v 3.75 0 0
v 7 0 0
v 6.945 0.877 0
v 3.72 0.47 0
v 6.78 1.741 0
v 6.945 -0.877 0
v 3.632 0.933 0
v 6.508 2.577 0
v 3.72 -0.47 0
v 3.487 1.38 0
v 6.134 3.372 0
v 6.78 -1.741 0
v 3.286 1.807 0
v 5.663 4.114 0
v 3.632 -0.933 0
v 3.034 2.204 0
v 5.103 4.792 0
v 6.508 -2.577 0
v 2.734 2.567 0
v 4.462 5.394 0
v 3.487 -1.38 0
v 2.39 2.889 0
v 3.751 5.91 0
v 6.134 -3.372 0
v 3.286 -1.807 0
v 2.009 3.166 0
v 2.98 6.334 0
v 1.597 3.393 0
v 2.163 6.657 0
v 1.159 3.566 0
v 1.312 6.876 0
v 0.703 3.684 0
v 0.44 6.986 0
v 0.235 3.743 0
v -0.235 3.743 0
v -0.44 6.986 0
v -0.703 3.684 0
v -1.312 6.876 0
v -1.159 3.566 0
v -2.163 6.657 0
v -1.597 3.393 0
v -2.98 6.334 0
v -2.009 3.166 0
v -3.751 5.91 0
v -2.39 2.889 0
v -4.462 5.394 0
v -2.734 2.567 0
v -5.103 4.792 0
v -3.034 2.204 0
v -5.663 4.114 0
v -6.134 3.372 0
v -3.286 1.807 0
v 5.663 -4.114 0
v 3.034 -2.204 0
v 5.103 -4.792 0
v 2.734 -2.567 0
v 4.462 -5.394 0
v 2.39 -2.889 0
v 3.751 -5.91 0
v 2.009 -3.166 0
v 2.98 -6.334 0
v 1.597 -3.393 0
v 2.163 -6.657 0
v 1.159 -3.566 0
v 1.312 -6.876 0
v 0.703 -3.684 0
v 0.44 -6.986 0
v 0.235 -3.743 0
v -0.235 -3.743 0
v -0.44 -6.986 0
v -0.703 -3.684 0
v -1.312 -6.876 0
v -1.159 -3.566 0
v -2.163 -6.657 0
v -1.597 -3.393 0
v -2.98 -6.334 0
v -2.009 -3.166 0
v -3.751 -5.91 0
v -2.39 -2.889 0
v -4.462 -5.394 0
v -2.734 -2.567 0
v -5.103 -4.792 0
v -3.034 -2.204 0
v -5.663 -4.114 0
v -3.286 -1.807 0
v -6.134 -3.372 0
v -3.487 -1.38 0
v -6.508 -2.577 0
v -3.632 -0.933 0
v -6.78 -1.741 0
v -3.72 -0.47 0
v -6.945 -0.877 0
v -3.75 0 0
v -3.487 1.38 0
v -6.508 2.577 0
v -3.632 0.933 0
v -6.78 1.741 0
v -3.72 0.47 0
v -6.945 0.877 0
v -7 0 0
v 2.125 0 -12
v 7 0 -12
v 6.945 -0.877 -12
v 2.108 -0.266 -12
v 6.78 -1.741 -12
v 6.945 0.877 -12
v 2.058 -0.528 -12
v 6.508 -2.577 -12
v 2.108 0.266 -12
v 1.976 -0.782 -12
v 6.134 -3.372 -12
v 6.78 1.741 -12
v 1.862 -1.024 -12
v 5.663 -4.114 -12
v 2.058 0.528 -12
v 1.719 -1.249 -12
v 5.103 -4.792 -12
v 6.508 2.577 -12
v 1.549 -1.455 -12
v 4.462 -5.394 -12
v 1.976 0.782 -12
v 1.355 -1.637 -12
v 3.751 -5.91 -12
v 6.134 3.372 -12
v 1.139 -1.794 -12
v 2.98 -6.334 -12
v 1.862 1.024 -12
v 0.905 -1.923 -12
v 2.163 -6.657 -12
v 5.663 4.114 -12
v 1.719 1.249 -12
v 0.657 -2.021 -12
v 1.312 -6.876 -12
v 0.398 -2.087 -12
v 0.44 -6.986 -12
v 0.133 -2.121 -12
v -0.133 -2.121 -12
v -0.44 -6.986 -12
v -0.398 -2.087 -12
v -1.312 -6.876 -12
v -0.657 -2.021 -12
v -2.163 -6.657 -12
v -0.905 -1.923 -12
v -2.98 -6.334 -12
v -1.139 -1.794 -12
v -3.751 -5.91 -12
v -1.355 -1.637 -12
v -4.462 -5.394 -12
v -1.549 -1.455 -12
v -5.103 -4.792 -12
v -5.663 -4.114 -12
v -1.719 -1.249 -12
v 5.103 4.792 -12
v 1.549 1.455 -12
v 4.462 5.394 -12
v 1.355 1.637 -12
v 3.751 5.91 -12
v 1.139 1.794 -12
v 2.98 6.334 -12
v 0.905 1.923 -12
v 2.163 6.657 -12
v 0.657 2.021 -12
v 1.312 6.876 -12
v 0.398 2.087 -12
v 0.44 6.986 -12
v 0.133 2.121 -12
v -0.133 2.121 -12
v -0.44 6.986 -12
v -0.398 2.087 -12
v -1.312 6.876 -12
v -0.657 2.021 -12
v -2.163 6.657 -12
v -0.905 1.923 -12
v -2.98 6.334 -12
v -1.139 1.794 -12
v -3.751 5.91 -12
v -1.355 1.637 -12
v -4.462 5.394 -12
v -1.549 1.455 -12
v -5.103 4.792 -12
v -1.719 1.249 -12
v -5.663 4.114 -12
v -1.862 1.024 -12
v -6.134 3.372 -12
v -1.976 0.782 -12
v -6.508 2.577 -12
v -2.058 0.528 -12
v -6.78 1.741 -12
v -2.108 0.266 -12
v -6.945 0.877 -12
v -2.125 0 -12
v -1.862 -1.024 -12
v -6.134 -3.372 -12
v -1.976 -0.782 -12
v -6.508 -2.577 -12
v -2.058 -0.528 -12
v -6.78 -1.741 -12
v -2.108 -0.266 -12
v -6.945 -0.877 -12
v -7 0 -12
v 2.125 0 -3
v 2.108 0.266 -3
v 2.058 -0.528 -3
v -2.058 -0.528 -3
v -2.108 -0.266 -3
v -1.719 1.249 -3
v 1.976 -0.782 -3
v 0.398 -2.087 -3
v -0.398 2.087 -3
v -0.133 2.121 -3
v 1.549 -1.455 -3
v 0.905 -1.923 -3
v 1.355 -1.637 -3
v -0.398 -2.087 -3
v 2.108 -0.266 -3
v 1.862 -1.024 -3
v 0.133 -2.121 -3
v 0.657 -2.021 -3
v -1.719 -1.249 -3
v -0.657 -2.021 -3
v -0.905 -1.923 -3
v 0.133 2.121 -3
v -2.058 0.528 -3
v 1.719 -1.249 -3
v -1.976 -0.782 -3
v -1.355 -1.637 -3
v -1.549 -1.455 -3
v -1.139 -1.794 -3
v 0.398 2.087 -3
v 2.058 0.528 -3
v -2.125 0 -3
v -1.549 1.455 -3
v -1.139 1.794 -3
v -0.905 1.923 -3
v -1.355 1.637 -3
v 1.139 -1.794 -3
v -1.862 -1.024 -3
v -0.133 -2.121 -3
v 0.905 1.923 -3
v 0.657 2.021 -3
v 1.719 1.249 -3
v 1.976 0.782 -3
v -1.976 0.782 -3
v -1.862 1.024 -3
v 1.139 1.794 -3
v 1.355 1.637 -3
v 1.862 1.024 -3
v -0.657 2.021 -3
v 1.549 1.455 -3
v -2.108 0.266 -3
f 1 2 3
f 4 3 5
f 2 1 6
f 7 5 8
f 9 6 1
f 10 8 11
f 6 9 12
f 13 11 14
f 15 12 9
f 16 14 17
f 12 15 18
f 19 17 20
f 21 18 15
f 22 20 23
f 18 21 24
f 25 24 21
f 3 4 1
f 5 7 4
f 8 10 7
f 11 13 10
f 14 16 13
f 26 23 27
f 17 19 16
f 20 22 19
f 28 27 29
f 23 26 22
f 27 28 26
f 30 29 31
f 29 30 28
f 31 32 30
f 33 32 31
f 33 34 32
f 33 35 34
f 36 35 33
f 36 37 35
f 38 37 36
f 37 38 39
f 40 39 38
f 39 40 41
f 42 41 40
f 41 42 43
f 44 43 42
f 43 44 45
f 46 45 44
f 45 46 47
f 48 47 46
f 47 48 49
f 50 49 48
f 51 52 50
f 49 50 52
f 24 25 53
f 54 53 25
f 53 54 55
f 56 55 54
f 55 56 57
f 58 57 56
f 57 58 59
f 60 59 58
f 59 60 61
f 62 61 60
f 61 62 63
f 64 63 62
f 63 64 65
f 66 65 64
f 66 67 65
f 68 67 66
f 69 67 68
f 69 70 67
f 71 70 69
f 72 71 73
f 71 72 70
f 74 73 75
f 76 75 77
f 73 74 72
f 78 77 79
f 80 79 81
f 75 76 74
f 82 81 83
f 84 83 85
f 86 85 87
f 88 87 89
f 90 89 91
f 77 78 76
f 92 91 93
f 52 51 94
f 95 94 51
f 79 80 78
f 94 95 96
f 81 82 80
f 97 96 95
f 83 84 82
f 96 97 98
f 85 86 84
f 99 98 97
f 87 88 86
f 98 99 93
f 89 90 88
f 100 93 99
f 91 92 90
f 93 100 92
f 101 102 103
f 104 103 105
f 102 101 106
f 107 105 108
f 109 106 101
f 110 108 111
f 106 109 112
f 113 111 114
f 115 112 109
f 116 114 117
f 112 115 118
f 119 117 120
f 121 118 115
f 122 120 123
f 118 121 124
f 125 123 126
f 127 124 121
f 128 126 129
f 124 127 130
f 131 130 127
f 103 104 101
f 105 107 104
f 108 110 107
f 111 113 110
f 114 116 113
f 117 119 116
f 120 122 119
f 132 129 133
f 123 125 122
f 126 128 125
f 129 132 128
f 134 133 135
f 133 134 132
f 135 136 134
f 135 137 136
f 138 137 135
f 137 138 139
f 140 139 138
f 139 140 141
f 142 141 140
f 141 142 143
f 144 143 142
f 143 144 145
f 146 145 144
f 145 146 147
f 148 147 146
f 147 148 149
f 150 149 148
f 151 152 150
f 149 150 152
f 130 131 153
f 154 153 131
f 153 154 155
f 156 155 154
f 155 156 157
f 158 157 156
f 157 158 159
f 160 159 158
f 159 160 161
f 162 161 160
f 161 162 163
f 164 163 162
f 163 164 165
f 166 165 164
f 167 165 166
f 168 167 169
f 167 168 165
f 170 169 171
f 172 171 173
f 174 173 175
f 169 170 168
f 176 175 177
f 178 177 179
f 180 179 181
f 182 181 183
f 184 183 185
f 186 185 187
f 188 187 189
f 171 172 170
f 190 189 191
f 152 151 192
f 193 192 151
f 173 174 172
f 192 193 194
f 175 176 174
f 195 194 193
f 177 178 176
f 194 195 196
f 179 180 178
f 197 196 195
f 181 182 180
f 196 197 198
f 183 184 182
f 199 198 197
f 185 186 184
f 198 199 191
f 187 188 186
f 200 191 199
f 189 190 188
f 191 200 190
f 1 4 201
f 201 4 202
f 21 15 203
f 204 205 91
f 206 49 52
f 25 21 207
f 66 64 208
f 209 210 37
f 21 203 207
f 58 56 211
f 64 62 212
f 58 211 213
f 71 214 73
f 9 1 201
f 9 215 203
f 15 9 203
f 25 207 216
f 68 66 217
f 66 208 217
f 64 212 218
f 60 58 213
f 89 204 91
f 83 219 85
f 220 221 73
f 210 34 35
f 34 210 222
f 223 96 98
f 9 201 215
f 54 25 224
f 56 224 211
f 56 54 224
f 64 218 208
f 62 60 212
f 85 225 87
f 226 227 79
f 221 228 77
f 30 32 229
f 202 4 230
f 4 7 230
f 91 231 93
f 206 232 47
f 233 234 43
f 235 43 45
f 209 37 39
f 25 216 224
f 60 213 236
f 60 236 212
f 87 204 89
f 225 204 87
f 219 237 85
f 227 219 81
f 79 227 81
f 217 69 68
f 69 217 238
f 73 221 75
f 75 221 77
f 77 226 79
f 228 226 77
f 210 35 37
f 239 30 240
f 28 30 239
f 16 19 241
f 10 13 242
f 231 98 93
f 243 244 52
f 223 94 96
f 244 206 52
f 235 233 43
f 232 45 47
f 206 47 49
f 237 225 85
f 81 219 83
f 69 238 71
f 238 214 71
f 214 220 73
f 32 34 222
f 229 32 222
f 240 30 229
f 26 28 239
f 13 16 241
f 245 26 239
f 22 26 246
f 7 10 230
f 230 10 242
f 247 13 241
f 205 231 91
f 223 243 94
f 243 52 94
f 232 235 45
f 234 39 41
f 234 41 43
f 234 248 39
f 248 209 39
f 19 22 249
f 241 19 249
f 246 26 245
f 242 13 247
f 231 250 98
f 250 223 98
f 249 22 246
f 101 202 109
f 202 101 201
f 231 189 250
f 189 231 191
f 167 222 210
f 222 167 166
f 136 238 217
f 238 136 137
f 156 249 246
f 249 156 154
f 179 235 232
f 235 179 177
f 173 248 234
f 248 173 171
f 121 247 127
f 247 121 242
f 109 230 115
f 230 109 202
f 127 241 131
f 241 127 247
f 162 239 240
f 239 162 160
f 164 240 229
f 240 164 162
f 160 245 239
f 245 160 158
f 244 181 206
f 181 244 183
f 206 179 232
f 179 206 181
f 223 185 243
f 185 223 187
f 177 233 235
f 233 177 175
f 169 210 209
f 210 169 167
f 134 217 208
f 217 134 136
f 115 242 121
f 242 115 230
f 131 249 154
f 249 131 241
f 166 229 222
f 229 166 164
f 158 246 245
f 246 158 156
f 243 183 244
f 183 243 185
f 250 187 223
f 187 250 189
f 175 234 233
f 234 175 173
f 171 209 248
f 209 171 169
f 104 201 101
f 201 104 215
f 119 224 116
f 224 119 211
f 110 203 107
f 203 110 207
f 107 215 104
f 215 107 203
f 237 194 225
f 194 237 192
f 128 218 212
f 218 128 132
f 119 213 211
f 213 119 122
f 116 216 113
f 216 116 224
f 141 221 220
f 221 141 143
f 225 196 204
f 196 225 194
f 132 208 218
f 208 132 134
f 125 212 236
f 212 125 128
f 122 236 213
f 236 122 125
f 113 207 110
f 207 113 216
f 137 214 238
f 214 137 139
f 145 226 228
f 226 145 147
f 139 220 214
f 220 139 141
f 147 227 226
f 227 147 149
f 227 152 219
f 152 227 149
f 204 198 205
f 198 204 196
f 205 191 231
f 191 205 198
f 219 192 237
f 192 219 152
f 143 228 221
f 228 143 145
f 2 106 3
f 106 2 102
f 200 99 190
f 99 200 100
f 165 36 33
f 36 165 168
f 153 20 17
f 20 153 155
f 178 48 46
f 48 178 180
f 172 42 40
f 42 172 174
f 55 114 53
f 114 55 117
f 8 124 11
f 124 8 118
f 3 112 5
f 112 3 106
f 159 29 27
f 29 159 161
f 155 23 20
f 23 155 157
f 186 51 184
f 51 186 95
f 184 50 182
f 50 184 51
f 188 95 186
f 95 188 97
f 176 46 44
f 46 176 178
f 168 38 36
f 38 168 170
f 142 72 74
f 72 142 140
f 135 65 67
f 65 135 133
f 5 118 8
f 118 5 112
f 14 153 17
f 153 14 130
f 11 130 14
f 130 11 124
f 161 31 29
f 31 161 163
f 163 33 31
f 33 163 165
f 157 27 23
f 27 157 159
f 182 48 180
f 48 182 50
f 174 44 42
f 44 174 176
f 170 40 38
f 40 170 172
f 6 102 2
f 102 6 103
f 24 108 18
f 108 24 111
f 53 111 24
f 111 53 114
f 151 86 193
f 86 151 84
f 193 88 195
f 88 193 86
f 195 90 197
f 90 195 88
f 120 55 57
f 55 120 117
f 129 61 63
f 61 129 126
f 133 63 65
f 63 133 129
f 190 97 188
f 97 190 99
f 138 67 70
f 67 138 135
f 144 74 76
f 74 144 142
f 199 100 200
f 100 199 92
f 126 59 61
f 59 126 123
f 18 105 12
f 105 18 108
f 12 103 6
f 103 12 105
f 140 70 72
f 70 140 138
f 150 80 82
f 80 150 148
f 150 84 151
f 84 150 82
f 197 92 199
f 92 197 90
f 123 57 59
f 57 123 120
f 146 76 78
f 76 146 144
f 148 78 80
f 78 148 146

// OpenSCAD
$fn = 50;


difference() {
	union() {
		translate(v = [0, 0, -12.0000000000]) {
			cylinder(h = 12, r = 7.0000000000);
		}
		cylinder(h = 0, r = 13.0000000000);
	}
	union() {
		translate(v = [0, 0, 0]) {
			rotate(a = [0, 0, 0]) {
				difference() {
					union() {
						#translate(v = [0, 0, -12.0000000000]) {
							cylinder(h = 12, r = 2.0000000000);
						}
						#translate(v = [0, 0, -3]) {
							cylinder(h = 3, r = 7.0000000000, r1 = 2.1250000000, r2 = 3.7500000000);
						}
						#translate(v = [0, 0, -12.0000000000]) {
							cylinder(h = 12, r = 2.1250000000);
						}
						#translate(v = [0, 0, -12.0000000000]) {
							cylinder(h = 12, r = 2.0000000000);
						}
					}
					union();
				}
			}
		}
	}
}
